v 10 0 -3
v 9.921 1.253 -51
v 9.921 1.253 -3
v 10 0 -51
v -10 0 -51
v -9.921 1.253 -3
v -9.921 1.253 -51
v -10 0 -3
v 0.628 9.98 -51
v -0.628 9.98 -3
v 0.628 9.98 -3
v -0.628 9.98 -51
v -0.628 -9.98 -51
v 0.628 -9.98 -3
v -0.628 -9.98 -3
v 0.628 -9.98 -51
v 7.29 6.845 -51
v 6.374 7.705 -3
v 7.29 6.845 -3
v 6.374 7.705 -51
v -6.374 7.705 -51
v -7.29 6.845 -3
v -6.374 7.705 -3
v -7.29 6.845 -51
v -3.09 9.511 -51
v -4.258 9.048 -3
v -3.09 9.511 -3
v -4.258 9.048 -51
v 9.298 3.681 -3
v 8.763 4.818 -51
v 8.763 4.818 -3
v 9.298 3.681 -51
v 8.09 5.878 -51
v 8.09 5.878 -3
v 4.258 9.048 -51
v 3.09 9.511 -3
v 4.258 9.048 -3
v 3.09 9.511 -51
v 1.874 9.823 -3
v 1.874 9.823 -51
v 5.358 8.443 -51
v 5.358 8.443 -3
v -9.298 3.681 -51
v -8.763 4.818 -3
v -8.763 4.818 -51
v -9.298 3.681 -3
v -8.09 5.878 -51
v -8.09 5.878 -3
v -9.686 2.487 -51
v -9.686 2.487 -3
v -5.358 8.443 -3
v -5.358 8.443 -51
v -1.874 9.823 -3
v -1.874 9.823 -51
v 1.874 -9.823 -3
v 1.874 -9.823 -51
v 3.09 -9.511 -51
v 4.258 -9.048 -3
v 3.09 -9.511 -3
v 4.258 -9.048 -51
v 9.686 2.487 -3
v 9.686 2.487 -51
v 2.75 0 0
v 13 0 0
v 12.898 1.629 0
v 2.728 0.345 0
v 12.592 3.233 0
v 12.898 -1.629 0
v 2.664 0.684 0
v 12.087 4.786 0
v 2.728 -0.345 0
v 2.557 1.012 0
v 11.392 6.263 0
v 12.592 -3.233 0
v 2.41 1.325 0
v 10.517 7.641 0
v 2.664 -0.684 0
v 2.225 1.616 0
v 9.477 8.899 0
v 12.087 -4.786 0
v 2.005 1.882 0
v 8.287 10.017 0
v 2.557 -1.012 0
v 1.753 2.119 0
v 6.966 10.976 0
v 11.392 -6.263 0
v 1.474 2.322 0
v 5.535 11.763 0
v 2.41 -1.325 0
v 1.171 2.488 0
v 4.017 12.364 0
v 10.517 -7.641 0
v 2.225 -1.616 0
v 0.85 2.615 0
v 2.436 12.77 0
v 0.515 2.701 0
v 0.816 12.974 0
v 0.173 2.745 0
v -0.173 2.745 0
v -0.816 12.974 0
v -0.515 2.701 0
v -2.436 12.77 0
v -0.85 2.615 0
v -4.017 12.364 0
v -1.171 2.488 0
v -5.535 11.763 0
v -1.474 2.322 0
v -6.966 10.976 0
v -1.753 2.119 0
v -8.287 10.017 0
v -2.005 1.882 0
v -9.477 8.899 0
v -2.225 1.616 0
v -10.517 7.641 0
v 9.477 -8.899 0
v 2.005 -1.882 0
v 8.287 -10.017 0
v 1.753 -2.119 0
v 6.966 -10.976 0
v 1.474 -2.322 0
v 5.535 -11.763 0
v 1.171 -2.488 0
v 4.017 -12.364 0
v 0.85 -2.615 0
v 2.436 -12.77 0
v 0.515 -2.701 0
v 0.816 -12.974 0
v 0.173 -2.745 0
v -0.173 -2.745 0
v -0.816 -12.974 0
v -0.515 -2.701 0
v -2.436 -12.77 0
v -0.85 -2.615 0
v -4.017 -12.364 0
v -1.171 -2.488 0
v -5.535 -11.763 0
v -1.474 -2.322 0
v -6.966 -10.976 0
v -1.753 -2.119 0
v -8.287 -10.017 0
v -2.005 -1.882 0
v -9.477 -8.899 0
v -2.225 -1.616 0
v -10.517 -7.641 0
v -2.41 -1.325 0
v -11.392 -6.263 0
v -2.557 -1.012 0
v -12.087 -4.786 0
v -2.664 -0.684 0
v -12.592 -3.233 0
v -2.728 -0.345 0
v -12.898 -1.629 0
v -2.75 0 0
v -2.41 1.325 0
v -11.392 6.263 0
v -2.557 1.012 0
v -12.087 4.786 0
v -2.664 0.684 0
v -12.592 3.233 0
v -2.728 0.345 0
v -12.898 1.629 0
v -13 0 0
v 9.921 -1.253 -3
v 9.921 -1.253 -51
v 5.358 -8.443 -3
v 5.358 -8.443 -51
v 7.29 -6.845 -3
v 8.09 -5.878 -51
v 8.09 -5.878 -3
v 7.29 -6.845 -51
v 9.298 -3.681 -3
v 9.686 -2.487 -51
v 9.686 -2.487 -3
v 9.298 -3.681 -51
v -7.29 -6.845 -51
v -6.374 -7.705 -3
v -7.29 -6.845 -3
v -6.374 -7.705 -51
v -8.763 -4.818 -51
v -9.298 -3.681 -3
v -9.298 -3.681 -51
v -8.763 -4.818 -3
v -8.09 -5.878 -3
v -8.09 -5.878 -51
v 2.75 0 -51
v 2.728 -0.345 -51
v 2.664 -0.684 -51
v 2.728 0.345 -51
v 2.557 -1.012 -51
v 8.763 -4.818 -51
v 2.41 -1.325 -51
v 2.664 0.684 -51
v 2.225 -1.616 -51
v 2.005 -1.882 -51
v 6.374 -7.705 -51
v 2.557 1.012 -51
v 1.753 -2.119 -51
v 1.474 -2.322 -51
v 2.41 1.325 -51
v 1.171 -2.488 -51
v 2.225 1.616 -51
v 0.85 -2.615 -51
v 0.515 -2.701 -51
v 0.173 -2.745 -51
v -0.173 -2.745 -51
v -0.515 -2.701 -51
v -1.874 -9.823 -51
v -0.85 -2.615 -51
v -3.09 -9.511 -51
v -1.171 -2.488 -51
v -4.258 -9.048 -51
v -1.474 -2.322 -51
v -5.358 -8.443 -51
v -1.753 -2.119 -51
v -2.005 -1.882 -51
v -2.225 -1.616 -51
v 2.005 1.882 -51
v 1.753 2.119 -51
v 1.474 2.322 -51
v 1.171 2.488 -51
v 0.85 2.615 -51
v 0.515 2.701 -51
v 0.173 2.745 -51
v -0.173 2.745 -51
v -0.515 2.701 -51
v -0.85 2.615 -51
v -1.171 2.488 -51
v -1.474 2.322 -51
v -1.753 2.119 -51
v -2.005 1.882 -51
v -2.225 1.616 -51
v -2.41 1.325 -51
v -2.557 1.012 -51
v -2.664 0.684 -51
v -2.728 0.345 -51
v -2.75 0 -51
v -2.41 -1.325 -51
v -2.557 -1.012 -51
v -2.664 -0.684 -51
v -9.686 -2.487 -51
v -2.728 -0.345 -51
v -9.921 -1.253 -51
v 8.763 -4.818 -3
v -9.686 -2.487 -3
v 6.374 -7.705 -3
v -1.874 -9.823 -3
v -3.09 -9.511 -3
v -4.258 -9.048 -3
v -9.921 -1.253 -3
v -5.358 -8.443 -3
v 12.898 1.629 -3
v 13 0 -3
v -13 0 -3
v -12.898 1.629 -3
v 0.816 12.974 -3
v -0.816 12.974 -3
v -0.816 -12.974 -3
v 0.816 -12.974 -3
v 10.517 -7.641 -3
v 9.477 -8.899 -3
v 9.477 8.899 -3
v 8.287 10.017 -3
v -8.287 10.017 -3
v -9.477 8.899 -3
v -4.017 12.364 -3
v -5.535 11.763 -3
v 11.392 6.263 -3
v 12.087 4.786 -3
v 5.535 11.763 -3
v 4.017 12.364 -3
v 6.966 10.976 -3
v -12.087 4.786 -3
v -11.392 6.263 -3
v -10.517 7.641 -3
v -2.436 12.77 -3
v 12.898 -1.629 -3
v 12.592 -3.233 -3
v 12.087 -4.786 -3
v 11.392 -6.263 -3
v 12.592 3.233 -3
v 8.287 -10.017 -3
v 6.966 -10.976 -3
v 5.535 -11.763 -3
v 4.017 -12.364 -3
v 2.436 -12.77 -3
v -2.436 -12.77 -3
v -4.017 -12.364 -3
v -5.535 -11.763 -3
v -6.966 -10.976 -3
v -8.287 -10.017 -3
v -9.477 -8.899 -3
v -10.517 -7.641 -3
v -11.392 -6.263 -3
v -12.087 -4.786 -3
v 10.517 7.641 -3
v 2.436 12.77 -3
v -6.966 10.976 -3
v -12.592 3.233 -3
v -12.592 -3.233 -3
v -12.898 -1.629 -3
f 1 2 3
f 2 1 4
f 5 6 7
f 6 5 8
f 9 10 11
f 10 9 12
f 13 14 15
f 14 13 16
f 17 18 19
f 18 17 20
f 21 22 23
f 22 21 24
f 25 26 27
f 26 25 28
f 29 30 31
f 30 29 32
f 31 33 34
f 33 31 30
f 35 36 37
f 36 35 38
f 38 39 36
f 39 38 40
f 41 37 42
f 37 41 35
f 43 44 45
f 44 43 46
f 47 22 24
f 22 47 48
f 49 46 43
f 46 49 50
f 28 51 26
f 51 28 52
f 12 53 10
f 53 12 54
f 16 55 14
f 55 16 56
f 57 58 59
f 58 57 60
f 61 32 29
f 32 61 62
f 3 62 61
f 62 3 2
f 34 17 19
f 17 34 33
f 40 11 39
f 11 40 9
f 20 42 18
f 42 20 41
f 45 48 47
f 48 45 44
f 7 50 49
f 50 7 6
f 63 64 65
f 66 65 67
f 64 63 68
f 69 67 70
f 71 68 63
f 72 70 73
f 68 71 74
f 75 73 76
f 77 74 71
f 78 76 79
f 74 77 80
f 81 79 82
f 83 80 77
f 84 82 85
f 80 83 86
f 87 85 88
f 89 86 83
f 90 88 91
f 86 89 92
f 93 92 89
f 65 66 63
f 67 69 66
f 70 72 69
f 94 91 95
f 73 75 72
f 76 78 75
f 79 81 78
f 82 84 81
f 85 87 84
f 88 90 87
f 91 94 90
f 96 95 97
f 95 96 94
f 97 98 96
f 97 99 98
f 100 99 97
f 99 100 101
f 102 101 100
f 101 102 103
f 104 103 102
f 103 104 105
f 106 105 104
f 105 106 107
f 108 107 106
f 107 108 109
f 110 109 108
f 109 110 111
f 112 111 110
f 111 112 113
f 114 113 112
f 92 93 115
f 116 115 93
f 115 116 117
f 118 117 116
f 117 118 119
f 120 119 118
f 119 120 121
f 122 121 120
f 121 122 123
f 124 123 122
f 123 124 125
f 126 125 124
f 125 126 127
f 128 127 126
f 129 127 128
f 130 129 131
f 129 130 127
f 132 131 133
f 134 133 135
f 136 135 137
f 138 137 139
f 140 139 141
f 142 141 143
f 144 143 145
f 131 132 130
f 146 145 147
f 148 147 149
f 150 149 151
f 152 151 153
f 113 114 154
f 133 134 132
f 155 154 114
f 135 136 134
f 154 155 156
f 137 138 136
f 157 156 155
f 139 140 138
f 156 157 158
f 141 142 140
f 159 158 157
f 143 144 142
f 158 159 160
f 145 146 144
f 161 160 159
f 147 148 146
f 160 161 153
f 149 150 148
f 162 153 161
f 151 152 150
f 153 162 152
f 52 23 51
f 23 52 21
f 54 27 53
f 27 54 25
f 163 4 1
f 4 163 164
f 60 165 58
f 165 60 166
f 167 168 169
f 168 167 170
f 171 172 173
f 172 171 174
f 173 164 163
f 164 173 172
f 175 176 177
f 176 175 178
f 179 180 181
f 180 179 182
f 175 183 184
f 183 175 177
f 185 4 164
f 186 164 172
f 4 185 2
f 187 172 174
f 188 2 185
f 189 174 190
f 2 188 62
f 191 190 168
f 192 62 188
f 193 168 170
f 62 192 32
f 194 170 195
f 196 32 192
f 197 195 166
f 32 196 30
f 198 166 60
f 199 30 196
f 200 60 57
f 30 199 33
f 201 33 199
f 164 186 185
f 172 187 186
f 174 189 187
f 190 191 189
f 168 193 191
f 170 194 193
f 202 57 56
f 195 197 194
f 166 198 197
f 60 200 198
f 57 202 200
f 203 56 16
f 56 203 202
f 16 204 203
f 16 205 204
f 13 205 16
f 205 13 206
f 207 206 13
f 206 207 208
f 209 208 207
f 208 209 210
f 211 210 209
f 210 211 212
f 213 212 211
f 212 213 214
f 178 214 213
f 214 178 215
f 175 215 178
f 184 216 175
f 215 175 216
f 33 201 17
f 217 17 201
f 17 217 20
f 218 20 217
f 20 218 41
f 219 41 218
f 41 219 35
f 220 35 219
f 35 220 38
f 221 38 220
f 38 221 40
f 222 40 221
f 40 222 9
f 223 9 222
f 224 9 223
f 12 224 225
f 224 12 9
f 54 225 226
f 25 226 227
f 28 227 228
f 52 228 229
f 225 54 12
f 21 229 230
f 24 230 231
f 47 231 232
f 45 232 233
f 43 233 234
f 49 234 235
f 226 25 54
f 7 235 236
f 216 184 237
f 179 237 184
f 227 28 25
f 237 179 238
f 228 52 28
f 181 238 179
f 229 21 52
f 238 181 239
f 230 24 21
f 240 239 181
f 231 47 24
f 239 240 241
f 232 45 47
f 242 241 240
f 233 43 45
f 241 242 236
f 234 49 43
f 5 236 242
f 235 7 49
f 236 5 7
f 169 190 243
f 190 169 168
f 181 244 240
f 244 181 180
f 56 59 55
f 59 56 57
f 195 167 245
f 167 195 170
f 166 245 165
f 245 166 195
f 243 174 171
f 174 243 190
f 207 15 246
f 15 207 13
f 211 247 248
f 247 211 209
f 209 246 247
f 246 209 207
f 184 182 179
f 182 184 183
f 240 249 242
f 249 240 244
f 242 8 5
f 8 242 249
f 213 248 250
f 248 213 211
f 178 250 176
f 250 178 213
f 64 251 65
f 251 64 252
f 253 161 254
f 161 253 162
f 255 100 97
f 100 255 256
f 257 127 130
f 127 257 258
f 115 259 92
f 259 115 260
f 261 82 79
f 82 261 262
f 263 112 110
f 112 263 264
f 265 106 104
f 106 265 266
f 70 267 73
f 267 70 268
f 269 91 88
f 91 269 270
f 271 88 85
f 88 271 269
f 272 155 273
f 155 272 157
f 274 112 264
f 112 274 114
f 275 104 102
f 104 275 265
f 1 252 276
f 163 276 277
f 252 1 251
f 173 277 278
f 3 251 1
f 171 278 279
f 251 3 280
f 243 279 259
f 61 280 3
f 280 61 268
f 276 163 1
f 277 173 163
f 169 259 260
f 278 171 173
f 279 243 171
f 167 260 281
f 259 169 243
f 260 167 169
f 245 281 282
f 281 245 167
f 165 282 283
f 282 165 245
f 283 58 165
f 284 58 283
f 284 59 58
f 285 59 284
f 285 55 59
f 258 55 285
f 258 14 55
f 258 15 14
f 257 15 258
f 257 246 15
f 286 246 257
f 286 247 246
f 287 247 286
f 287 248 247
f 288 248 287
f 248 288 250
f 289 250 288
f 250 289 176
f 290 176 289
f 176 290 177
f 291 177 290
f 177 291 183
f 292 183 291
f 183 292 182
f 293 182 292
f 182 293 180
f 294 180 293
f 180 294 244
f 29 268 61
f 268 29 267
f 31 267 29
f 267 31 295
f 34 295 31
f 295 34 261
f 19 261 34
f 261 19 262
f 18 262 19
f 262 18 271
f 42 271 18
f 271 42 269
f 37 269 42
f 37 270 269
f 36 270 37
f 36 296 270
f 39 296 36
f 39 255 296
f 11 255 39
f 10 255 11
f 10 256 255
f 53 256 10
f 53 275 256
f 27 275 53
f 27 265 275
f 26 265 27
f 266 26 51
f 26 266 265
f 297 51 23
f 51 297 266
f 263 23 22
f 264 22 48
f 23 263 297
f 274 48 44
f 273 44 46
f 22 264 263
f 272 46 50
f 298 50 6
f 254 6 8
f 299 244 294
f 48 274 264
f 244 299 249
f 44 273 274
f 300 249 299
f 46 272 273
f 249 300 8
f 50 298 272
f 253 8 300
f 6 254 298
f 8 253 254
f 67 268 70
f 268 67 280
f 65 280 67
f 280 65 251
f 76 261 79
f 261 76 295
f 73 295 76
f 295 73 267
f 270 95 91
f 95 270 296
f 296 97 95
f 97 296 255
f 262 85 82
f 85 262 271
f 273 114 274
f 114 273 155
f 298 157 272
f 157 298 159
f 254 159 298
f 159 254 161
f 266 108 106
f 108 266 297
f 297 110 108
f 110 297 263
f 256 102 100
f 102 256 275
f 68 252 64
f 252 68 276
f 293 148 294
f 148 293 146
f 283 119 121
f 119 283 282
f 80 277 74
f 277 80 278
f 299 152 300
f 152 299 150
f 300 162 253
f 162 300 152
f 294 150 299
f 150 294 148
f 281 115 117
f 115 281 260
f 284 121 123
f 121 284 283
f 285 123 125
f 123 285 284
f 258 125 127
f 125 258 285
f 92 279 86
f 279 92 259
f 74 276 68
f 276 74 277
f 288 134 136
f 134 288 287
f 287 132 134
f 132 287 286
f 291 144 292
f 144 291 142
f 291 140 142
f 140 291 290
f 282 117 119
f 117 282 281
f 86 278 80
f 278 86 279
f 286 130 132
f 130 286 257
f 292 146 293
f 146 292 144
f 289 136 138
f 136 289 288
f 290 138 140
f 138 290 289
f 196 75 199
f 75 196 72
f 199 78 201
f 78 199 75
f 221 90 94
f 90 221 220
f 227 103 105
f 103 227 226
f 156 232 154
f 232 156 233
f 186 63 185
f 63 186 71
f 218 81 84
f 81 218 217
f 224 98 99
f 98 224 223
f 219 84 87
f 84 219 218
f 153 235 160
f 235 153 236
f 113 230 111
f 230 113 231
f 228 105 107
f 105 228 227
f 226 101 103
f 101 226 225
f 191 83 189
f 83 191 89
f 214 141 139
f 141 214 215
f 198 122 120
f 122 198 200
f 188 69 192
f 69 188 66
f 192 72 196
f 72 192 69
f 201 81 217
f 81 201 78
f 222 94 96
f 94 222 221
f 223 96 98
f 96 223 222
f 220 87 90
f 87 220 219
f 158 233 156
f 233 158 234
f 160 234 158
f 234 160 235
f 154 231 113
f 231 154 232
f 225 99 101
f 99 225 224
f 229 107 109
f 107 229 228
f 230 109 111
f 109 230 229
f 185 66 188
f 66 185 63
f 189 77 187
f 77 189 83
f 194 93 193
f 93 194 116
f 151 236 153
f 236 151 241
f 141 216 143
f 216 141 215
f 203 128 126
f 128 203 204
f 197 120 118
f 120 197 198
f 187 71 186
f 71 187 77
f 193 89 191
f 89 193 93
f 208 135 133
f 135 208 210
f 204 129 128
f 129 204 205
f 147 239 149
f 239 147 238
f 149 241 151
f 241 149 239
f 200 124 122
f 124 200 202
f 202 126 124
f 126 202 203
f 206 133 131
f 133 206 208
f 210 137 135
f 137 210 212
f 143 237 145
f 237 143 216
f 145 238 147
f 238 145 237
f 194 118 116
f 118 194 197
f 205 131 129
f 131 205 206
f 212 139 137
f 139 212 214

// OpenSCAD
$fn = 50;


difference() {
	union() {
		translate(v = [0, 0, -51.0000000000]) {
			cylinder(h = 51, r = 10.0000000000);
		}
		translate(v = [0, 0, -3.0000000000]) {
			cylinder(h = 3, r = 13.0000000000);
		}
	}
	union() {
		#translate(v = [0, 0, -51]) {
			cylinder(h = 51, r = 2.7500000000);
		}
	}
}
